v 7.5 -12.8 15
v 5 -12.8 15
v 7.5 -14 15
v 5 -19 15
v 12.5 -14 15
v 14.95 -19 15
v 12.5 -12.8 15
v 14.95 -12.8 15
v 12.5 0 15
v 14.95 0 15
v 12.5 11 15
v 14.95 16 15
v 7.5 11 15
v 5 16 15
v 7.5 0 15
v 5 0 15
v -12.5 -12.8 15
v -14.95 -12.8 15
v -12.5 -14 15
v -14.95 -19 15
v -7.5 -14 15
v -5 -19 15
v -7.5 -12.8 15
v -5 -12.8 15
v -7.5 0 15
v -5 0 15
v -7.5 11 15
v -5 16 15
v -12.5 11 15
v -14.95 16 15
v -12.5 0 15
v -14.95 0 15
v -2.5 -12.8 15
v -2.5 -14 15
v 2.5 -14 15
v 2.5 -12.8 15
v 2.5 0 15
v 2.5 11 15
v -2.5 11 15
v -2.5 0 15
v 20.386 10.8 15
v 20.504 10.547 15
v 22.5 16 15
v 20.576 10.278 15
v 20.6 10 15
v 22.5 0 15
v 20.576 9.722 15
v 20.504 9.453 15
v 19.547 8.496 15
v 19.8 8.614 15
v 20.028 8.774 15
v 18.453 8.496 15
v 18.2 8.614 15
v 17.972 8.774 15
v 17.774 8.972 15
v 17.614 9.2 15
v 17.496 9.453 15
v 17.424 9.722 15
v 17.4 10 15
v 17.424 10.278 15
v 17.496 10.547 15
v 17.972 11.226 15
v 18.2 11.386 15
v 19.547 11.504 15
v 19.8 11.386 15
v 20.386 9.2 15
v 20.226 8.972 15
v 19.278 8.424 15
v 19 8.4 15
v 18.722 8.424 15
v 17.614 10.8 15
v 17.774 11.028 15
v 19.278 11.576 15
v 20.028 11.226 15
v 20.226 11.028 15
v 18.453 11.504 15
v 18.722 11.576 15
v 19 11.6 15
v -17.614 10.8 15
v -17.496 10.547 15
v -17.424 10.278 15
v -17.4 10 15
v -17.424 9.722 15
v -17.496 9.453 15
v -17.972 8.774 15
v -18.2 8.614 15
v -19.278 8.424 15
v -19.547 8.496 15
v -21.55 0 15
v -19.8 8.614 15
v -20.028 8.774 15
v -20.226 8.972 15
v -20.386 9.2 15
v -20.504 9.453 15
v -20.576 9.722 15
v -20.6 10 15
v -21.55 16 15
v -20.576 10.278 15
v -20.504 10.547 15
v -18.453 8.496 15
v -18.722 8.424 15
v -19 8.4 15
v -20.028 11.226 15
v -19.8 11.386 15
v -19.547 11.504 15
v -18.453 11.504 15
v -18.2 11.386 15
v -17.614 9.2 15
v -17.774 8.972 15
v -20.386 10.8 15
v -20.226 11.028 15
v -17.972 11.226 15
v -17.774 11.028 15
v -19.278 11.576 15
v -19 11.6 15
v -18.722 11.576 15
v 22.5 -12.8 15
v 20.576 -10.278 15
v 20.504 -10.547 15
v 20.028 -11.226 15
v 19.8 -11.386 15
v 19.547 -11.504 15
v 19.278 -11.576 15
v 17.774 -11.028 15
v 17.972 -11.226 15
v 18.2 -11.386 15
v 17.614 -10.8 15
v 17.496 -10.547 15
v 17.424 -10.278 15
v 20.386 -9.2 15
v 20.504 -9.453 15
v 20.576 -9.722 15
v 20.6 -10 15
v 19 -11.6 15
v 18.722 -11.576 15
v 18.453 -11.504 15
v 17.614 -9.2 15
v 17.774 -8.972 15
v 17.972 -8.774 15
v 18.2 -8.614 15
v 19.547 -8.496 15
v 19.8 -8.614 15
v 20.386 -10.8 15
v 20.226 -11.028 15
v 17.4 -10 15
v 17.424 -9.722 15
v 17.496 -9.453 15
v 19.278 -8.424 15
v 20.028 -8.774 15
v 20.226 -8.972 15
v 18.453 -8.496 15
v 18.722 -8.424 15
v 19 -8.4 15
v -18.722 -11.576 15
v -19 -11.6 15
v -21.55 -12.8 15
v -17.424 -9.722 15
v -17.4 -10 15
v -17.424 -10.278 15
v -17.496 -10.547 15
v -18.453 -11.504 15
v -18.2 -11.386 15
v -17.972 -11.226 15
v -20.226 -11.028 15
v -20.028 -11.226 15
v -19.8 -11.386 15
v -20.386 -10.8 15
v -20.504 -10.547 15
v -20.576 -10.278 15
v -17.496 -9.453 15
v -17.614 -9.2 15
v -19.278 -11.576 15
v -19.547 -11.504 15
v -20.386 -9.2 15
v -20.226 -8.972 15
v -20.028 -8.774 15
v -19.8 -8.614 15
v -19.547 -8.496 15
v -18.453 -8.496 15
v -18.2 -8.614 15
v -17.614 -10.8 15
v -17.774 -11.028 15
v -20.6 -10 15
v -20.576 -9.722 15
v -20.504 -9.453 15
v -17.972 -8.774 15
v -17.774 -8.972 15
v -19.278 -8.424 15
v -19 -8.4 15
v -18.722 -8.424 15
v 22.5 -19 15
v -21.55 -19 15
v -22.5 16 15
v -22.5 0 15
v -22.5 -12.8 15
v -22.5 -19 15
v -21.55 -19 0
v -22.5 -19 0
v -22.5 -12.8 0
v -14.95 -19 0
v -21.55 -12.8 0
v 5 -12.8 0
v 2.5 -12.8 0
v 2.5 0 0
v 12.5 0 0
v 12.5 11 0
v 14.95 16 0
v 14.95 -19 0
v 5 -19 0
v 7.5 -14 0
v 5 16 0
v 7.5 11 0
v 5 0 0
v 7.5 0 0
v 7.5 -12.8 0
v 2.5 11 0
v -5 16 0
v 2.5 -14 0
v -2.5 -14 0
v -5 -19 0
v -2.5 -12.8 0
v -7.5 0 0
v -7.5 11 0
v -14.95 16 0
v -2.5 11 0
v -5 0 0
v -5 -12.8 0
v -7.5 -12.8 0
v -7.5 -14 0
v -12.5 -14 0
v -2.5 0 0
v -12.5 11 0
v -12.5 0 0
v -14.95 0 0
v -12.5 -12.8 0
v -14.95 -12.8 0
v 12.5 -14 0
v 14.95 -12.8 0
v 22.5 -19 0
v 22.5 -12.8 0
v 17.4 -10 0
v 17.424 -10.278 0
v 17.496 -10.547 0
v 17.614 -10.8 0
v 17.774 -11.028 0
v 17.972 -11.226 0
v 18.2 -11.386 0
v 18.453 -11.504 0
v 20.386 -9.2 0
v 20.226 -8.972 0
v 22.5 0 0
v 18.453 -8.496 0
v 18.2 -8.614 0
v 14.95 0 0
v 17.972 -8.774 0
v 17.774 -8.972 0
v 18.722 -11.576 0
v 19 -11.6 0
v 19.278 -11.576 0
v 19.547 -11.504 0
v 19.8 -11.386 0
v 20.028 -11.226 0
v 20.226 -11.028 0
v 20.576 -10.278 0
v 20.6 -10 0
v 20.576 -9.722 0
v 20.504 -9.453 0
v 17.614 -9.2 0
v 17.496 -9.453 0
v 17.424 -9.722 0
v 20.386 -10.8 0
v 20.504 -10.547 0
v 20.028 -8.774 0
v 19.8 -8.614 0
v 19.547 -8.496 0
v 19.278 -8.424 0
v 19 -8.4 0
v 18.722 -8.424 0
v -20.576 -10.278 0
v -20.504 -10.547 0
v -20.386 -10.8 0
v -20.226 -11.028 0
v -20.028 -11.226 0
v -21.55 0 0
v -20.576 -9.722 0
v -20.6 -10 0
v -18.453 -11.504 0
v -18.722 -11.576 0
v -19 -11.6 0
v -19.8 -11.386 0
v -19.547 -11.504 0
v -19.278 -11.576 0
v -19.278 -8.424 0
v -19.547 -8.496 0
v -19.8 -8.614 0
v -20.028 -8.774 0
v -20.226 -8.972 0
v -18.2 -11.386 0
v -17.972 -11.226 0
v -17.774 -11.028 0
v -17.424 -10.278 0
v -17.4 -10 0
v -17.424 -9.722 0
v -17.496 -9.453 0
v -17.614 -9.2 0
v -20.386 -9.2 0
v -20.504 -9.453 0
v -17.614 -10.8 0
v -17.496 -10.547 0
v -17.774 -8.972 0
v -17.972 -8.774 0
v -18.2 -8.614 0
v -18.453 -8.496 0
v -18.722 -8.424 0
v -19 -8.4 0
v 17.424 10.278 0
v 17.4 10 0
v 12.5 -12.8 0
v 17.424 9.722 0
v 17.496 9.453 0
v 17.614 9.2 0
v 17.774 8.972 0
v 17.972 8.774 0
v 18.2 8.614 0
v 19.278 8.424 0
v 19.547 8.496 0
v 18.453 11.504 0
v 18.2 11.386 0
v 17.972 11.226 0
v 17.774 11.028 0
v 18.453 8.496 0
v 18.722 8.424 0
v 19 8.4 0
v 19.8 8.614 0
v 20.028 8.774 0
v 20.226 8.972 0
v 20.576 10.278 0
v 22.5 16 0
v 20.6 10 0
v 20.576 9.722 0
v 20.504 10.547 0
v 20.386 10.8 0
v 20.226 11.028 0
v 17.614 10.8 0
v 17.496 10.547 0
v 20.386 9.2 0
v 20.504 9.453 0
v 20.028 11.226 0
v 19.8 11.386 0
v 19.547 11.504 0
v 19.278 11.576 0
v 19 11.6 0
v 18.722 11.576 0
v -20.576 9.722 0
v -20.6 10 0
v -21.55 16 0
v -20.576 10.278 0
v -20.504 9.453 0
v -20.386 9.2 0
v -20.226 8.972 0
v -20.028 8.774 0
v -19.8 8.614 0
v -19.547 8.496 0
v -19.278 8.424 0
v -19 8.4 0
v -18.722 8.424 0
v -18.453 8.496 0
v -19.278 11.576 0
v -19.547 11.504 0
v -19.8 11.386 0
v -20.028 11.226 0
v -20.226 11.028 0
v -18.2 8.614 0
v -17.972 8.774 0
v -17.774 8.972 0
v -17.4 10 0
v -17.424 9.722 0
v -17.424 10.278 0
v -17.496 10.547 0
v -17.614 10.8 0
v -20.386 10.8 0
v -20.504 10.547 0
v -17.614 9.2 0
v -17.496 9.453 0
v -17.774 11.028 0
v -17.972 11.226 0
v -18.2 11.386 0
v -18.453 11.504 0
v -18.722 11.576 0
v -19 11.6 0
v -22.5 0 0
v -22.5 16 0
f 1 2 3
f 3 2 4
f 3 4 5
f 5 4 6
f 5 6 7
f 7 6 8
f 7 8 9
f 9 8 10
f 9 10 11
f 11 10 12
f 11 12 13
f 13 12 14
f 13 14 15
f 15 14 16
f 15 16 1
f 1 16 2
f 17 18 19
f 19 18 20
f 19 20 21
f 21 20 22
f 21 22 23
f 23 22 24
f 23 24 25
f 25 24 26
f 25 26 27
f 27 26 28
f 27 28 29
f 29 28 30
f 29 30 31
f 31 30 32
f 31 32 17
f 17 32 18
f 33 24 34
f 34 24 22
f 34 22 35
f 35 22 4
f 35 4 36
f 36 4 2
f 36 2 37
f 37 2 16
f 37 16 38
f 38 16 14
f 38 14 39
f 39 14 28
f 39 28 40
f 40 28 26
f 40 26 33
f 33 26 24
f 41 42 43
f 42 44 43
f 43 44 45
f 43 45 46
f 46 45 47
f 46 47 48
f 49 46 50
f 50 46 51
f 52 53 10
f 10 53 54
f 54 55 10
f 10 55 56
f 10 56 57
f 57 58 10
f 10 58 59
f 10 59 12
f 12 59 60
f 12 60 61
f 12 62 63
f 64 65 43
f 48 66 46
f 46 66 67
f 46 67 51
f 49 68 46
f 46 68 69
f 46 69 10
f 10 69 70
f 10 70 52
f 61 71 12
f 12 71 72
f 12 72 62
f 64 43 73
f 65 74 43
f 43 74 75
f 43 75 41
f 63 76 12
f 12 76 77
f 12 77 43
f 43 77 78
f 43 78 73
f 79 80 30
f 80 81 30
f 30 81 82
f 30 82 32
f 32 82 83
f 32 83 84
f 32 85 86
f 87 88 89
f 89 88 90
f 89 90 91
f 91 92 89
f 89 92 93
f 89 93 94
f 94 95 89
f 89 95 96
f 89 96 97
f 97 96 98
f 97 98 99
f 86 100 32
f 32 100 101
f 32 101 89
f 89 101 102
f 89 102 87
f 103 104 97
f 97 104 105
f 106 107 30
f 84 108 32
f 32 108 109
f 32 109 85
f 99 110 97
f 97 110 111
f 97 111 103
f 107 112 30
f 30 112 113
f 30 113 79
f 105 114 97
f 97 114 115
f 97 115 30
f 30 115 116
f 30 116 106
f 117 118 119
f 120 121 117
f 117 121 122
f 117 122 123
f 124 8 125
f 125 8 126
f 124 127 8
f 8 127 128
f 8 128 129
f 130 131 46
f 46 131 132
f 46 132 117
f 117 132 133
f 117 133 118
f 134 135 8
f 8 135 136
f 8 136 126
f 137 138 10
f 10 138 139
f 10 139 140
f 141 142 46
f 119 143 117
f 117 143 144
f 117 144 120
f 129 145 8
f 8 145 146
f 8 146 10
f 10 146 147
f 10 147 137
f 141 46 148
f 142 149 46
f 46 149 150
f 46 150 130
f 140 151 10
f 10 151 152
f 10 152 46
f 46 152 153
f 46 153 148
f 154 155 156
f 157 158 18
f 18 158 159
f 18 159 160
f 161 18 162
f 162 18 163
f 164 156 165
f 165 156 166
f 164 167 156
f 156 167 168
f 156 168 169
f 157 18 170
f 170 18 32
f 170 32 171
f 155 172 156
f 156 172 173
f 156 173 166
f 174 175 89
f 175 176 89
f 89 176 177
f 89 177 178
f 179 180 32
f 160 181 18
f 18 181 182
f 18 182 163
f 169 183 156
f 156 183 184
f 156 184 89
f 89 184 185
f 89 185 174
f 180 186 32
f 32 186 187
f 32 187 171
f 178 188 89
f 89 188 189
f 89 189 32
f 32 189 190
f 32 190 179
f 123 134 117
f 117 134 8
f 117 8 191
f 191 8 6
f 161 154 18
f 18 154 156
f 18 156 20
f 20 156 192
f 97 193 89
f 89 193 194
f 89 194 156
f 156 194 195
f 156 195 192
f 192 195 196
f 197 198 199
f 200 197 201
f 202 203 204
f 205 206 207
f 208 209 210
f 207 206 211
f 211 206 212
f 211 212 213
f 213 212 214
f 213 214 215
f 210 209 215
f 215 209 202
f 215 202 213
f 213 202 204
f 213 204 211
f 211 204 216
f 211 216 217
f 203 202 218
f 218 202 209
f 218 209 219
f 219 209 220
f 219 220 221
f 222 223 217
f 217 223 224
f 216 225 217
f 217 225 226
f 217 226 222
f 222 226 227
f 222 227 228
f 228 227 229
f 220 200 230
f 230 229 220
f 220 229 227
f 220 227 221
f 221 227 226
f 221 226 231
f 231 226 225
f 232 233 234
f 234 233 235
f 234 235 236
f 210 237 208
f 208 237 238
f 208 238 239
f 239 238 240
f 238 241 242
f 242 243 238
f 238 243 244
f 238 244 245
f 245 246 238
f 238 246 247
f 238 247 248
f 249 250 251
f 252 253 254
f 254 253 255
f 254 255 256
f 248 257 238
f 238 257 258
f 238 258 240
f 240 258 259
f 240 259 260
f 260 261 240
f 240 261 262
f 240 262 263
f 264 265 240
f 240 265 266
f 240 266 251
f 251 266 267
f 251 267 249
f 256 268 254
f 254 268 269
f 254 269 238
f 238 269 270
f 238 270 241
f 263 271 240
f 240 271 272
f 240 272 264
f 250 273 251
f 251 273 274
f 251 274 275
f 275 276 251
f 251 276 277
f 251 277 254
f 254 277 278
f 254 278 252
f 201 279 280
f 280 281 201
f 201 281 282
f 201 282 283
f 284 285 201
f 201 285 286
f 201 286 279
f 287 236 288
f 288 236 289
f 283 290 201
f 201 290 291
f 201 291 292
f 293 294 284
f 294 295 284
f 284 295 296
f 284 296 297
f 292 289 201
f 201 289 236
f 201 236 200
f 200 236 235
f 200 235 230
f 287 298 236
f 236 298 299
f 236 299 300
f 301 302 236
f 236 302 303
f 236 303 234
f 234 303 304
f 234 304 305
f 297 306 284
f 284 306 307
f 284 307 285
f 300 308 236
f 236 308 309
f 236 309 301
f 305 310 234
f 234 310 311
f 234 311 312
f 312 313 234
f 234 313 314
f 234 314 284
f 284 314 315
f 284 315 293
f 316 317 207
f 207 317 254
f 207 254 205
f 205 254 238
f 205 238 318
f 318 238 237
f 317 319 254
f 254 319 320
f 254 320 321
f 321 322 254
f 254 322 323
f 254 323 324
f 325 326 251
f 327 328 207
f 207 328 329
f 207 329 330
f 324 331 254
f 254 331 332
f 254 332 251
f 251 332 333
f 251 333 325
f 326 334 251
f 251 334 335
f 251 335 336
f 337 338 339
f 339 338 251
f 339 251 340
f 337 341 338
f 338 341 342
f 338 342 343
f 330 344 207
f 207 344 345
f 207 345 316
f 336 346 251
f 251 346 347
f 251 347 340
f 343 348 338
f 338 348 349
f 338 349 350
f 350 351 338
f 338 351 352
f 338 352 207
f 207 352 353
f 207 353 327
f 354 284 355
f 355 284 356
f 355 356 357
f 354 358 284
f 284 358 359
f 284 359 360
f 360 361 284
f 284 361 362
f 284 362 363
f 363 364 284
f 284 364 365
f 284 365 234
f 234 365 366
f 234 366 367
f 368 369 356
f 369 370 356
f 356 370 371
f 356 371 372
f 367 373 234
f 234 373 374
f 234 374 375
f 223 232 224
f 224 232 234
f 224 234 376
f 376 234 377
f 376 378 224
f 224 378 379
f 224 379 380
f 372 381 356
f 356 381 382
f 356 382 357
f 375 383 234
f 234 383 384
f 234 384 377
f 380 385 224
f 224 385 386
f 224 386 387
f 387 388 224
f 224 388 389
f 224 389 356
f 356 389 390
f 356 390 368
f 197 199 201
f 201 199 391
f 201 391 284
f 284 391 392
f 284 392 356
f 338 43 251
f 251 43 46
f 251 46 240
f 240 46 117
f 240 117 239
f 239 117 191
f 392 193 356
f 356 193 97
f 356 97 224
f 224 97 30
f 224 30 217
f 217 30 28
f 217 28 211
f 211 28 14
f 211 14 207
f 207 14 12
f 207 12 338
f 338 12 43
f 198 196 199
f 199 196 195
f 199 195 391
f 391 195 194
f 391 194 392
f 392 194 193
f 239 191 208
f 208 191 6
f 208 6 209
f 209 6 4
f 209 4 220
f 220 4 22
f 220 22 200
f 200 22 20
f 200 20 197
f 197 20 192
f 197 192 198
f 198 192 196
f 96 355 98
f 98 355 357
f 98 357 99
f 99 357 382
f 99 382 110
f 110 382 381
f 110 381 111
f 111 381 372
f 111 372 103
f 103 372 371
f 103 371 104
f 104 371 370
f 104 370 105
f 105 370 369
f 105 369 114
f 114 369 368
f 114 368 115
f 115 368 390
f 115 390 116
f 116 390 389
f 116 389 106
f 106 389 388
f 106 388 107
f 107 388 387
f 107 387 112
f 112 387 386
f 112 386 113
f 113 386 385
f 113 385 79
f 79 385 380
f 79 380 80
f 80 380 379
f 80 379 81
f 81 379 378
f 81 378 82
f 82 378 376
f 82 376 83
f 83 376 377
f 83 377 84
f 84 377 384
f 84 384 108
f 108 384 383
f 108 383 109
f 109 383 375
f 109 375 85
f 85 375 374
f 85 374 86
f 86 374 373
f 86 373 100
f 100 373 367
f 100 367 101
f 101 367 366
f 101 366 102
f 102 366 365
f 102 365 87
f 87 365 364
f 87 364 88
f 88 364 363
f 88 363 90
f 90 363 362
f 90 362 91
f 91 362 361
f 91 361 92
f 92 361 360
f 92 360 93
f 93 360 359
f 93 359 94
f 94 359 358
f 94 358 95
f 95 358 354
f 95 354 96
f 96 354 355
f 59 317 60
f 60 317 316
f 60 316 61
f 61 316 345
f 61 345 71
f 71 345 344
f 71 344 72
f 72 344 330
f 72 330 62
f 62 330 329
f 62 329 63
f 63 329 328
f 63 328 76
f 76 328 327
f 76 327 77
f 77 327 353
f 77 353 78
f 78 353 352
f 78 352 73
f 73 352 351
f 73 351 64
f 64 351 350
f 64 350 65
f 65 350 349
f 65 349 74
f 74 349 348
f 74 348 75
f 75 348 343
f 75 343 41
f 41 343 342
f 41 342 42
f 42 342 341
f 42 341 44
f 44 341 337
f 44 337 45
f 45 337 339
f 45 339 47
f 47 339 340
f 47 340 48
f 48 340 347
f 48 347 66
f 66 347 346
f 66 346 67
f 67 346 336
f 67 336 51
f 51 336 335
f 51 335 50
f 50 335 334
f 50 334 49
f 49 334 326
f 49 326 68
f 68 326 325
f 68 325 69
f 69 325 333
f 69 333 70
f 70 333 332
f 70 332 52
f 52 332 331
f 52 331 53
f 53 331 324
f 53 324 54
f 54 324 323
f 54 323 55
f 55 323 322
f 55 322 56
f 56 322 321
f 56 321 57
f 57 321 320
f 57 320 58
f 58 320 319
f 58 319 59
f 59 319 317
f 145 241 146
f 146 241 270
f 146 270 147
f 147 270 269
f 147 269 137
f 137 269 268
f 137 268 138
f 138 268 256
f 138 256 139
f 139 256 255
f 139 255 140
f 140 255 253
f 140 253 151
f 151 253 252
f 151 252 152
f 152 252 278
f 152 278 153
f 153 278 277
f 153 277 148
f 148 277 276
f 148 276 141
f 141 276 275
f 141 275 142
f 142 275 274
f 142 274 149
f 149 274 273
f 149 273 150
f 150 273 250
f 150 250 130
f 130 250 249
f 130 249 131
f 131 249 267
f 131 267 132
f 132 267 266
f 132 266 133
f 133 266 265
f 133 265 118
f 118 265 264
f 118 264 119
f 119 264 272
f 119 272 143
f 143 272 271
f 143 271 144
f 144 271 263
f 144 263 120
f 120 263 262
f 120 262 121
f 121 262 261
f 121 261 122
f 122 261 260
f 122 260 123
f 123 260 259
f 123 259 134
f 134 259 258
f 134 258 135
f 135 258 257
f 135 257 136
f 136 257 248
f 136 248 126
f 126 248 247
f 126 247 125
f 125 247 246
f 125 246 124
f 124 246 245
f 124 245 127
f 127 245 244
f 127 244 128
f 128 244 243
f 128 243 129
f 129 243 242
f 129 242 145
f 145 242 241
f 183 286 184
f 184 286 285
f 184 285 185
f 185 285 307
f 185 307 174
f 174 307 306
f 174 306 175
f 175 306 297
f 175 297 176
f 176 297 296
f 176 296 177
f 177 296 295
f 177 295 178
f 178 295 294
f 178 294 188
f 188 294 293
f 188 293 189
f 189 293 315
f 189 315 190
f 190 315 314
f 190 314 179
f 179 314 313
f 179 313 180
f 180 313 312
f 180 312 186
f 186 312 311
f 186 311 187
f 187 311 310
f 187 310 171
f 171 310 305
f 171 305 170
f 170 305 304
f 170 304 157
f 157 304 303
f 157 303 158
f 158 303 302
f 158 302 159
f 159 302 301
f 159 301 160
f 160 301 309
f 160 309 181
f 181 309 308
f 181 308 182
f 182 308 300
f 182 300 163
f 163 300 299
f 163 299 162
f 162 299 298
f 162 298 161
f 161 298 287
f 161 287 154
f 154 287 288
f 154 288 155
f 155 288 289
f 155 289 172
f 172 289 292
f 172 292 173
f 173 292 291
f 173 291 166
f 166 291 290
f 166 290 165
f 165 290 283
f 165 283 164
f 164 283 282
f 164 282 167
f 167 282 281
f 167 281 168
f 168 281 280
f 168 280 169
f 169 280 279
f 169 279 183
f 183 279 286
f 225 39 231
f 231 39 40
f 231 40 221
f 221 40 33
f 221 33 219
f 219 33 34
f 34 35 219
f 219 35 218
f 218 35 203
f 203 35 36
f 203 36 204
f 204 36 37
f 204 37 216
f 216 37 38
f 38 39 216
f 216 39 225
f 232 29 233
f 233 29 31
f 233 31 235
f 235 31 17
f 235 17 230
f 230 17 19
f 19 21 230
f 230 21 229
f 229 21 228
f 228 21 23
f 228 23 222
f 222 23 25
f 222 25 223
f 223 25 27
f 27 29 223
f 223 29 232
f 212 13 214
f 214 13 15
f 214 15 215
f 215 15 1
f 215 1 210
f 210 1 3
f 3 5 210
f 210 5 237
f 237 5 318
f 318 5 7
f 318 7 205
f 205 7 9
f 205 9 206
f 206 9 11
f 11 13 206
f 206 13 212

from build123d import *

# Parameters (mm, degrees)
SKETCH_1_W          = 45
SKETCH_1_H          = 35
SKETCH_1_R          = 1.6
EXTRUDE_1_DEPTH     = 15
SKETCH_2_W          = 5
SKETCH_2_H          = 25
CUT_EXTRUDE_2_DEPTH = 15


with BuildPart() as part:
    # 草图1 → 凸台-拉伸1 (new body)
    with BuildSketch(Plane.XY):
        with Locations((0, -1.5)):
            Rectangle(SKETCH_1_W, SKETCH_1_H)
        with Locations((-19, 10)):
            Circle(SKETCH_1_R, mode=Mode.SUBTRACT)
        with Locations((19, 10)):
            Circle(SKETCH_1_R, mode=Mode.SUBTRACT)
        with Locations((19, -10)):
            Circle(SKETCH_1_R, mode=Mode.SUBTRACT)
        with Locations((-19, -10)):
            Circle(SKETCH_1_R, mode=Mode.SUBTRACT)
    extrude(amount=EXTRUDE_1_DEPTH)

    # 草图2 → 切除-拉伸-薄壁2 (cut)
    with BuildSketch(Plane.XY):
        with Locations((0, -1.5)):
            Rectangle(SKETCH_2_W, SKETCH_2_H)
        with Locations((10, -1.5)):
            Rectangle(SKETCH_2_W, SKETCH_2_H)
        with Locations((-10, -1.5)):
            Rectangle(SKETCH_2_W, SKETCH_2_H)
    extrude(amount=CUT_EXTRUDE_2_DEPTH, mode=Mode.SUBTRACT)


solid = part.part
